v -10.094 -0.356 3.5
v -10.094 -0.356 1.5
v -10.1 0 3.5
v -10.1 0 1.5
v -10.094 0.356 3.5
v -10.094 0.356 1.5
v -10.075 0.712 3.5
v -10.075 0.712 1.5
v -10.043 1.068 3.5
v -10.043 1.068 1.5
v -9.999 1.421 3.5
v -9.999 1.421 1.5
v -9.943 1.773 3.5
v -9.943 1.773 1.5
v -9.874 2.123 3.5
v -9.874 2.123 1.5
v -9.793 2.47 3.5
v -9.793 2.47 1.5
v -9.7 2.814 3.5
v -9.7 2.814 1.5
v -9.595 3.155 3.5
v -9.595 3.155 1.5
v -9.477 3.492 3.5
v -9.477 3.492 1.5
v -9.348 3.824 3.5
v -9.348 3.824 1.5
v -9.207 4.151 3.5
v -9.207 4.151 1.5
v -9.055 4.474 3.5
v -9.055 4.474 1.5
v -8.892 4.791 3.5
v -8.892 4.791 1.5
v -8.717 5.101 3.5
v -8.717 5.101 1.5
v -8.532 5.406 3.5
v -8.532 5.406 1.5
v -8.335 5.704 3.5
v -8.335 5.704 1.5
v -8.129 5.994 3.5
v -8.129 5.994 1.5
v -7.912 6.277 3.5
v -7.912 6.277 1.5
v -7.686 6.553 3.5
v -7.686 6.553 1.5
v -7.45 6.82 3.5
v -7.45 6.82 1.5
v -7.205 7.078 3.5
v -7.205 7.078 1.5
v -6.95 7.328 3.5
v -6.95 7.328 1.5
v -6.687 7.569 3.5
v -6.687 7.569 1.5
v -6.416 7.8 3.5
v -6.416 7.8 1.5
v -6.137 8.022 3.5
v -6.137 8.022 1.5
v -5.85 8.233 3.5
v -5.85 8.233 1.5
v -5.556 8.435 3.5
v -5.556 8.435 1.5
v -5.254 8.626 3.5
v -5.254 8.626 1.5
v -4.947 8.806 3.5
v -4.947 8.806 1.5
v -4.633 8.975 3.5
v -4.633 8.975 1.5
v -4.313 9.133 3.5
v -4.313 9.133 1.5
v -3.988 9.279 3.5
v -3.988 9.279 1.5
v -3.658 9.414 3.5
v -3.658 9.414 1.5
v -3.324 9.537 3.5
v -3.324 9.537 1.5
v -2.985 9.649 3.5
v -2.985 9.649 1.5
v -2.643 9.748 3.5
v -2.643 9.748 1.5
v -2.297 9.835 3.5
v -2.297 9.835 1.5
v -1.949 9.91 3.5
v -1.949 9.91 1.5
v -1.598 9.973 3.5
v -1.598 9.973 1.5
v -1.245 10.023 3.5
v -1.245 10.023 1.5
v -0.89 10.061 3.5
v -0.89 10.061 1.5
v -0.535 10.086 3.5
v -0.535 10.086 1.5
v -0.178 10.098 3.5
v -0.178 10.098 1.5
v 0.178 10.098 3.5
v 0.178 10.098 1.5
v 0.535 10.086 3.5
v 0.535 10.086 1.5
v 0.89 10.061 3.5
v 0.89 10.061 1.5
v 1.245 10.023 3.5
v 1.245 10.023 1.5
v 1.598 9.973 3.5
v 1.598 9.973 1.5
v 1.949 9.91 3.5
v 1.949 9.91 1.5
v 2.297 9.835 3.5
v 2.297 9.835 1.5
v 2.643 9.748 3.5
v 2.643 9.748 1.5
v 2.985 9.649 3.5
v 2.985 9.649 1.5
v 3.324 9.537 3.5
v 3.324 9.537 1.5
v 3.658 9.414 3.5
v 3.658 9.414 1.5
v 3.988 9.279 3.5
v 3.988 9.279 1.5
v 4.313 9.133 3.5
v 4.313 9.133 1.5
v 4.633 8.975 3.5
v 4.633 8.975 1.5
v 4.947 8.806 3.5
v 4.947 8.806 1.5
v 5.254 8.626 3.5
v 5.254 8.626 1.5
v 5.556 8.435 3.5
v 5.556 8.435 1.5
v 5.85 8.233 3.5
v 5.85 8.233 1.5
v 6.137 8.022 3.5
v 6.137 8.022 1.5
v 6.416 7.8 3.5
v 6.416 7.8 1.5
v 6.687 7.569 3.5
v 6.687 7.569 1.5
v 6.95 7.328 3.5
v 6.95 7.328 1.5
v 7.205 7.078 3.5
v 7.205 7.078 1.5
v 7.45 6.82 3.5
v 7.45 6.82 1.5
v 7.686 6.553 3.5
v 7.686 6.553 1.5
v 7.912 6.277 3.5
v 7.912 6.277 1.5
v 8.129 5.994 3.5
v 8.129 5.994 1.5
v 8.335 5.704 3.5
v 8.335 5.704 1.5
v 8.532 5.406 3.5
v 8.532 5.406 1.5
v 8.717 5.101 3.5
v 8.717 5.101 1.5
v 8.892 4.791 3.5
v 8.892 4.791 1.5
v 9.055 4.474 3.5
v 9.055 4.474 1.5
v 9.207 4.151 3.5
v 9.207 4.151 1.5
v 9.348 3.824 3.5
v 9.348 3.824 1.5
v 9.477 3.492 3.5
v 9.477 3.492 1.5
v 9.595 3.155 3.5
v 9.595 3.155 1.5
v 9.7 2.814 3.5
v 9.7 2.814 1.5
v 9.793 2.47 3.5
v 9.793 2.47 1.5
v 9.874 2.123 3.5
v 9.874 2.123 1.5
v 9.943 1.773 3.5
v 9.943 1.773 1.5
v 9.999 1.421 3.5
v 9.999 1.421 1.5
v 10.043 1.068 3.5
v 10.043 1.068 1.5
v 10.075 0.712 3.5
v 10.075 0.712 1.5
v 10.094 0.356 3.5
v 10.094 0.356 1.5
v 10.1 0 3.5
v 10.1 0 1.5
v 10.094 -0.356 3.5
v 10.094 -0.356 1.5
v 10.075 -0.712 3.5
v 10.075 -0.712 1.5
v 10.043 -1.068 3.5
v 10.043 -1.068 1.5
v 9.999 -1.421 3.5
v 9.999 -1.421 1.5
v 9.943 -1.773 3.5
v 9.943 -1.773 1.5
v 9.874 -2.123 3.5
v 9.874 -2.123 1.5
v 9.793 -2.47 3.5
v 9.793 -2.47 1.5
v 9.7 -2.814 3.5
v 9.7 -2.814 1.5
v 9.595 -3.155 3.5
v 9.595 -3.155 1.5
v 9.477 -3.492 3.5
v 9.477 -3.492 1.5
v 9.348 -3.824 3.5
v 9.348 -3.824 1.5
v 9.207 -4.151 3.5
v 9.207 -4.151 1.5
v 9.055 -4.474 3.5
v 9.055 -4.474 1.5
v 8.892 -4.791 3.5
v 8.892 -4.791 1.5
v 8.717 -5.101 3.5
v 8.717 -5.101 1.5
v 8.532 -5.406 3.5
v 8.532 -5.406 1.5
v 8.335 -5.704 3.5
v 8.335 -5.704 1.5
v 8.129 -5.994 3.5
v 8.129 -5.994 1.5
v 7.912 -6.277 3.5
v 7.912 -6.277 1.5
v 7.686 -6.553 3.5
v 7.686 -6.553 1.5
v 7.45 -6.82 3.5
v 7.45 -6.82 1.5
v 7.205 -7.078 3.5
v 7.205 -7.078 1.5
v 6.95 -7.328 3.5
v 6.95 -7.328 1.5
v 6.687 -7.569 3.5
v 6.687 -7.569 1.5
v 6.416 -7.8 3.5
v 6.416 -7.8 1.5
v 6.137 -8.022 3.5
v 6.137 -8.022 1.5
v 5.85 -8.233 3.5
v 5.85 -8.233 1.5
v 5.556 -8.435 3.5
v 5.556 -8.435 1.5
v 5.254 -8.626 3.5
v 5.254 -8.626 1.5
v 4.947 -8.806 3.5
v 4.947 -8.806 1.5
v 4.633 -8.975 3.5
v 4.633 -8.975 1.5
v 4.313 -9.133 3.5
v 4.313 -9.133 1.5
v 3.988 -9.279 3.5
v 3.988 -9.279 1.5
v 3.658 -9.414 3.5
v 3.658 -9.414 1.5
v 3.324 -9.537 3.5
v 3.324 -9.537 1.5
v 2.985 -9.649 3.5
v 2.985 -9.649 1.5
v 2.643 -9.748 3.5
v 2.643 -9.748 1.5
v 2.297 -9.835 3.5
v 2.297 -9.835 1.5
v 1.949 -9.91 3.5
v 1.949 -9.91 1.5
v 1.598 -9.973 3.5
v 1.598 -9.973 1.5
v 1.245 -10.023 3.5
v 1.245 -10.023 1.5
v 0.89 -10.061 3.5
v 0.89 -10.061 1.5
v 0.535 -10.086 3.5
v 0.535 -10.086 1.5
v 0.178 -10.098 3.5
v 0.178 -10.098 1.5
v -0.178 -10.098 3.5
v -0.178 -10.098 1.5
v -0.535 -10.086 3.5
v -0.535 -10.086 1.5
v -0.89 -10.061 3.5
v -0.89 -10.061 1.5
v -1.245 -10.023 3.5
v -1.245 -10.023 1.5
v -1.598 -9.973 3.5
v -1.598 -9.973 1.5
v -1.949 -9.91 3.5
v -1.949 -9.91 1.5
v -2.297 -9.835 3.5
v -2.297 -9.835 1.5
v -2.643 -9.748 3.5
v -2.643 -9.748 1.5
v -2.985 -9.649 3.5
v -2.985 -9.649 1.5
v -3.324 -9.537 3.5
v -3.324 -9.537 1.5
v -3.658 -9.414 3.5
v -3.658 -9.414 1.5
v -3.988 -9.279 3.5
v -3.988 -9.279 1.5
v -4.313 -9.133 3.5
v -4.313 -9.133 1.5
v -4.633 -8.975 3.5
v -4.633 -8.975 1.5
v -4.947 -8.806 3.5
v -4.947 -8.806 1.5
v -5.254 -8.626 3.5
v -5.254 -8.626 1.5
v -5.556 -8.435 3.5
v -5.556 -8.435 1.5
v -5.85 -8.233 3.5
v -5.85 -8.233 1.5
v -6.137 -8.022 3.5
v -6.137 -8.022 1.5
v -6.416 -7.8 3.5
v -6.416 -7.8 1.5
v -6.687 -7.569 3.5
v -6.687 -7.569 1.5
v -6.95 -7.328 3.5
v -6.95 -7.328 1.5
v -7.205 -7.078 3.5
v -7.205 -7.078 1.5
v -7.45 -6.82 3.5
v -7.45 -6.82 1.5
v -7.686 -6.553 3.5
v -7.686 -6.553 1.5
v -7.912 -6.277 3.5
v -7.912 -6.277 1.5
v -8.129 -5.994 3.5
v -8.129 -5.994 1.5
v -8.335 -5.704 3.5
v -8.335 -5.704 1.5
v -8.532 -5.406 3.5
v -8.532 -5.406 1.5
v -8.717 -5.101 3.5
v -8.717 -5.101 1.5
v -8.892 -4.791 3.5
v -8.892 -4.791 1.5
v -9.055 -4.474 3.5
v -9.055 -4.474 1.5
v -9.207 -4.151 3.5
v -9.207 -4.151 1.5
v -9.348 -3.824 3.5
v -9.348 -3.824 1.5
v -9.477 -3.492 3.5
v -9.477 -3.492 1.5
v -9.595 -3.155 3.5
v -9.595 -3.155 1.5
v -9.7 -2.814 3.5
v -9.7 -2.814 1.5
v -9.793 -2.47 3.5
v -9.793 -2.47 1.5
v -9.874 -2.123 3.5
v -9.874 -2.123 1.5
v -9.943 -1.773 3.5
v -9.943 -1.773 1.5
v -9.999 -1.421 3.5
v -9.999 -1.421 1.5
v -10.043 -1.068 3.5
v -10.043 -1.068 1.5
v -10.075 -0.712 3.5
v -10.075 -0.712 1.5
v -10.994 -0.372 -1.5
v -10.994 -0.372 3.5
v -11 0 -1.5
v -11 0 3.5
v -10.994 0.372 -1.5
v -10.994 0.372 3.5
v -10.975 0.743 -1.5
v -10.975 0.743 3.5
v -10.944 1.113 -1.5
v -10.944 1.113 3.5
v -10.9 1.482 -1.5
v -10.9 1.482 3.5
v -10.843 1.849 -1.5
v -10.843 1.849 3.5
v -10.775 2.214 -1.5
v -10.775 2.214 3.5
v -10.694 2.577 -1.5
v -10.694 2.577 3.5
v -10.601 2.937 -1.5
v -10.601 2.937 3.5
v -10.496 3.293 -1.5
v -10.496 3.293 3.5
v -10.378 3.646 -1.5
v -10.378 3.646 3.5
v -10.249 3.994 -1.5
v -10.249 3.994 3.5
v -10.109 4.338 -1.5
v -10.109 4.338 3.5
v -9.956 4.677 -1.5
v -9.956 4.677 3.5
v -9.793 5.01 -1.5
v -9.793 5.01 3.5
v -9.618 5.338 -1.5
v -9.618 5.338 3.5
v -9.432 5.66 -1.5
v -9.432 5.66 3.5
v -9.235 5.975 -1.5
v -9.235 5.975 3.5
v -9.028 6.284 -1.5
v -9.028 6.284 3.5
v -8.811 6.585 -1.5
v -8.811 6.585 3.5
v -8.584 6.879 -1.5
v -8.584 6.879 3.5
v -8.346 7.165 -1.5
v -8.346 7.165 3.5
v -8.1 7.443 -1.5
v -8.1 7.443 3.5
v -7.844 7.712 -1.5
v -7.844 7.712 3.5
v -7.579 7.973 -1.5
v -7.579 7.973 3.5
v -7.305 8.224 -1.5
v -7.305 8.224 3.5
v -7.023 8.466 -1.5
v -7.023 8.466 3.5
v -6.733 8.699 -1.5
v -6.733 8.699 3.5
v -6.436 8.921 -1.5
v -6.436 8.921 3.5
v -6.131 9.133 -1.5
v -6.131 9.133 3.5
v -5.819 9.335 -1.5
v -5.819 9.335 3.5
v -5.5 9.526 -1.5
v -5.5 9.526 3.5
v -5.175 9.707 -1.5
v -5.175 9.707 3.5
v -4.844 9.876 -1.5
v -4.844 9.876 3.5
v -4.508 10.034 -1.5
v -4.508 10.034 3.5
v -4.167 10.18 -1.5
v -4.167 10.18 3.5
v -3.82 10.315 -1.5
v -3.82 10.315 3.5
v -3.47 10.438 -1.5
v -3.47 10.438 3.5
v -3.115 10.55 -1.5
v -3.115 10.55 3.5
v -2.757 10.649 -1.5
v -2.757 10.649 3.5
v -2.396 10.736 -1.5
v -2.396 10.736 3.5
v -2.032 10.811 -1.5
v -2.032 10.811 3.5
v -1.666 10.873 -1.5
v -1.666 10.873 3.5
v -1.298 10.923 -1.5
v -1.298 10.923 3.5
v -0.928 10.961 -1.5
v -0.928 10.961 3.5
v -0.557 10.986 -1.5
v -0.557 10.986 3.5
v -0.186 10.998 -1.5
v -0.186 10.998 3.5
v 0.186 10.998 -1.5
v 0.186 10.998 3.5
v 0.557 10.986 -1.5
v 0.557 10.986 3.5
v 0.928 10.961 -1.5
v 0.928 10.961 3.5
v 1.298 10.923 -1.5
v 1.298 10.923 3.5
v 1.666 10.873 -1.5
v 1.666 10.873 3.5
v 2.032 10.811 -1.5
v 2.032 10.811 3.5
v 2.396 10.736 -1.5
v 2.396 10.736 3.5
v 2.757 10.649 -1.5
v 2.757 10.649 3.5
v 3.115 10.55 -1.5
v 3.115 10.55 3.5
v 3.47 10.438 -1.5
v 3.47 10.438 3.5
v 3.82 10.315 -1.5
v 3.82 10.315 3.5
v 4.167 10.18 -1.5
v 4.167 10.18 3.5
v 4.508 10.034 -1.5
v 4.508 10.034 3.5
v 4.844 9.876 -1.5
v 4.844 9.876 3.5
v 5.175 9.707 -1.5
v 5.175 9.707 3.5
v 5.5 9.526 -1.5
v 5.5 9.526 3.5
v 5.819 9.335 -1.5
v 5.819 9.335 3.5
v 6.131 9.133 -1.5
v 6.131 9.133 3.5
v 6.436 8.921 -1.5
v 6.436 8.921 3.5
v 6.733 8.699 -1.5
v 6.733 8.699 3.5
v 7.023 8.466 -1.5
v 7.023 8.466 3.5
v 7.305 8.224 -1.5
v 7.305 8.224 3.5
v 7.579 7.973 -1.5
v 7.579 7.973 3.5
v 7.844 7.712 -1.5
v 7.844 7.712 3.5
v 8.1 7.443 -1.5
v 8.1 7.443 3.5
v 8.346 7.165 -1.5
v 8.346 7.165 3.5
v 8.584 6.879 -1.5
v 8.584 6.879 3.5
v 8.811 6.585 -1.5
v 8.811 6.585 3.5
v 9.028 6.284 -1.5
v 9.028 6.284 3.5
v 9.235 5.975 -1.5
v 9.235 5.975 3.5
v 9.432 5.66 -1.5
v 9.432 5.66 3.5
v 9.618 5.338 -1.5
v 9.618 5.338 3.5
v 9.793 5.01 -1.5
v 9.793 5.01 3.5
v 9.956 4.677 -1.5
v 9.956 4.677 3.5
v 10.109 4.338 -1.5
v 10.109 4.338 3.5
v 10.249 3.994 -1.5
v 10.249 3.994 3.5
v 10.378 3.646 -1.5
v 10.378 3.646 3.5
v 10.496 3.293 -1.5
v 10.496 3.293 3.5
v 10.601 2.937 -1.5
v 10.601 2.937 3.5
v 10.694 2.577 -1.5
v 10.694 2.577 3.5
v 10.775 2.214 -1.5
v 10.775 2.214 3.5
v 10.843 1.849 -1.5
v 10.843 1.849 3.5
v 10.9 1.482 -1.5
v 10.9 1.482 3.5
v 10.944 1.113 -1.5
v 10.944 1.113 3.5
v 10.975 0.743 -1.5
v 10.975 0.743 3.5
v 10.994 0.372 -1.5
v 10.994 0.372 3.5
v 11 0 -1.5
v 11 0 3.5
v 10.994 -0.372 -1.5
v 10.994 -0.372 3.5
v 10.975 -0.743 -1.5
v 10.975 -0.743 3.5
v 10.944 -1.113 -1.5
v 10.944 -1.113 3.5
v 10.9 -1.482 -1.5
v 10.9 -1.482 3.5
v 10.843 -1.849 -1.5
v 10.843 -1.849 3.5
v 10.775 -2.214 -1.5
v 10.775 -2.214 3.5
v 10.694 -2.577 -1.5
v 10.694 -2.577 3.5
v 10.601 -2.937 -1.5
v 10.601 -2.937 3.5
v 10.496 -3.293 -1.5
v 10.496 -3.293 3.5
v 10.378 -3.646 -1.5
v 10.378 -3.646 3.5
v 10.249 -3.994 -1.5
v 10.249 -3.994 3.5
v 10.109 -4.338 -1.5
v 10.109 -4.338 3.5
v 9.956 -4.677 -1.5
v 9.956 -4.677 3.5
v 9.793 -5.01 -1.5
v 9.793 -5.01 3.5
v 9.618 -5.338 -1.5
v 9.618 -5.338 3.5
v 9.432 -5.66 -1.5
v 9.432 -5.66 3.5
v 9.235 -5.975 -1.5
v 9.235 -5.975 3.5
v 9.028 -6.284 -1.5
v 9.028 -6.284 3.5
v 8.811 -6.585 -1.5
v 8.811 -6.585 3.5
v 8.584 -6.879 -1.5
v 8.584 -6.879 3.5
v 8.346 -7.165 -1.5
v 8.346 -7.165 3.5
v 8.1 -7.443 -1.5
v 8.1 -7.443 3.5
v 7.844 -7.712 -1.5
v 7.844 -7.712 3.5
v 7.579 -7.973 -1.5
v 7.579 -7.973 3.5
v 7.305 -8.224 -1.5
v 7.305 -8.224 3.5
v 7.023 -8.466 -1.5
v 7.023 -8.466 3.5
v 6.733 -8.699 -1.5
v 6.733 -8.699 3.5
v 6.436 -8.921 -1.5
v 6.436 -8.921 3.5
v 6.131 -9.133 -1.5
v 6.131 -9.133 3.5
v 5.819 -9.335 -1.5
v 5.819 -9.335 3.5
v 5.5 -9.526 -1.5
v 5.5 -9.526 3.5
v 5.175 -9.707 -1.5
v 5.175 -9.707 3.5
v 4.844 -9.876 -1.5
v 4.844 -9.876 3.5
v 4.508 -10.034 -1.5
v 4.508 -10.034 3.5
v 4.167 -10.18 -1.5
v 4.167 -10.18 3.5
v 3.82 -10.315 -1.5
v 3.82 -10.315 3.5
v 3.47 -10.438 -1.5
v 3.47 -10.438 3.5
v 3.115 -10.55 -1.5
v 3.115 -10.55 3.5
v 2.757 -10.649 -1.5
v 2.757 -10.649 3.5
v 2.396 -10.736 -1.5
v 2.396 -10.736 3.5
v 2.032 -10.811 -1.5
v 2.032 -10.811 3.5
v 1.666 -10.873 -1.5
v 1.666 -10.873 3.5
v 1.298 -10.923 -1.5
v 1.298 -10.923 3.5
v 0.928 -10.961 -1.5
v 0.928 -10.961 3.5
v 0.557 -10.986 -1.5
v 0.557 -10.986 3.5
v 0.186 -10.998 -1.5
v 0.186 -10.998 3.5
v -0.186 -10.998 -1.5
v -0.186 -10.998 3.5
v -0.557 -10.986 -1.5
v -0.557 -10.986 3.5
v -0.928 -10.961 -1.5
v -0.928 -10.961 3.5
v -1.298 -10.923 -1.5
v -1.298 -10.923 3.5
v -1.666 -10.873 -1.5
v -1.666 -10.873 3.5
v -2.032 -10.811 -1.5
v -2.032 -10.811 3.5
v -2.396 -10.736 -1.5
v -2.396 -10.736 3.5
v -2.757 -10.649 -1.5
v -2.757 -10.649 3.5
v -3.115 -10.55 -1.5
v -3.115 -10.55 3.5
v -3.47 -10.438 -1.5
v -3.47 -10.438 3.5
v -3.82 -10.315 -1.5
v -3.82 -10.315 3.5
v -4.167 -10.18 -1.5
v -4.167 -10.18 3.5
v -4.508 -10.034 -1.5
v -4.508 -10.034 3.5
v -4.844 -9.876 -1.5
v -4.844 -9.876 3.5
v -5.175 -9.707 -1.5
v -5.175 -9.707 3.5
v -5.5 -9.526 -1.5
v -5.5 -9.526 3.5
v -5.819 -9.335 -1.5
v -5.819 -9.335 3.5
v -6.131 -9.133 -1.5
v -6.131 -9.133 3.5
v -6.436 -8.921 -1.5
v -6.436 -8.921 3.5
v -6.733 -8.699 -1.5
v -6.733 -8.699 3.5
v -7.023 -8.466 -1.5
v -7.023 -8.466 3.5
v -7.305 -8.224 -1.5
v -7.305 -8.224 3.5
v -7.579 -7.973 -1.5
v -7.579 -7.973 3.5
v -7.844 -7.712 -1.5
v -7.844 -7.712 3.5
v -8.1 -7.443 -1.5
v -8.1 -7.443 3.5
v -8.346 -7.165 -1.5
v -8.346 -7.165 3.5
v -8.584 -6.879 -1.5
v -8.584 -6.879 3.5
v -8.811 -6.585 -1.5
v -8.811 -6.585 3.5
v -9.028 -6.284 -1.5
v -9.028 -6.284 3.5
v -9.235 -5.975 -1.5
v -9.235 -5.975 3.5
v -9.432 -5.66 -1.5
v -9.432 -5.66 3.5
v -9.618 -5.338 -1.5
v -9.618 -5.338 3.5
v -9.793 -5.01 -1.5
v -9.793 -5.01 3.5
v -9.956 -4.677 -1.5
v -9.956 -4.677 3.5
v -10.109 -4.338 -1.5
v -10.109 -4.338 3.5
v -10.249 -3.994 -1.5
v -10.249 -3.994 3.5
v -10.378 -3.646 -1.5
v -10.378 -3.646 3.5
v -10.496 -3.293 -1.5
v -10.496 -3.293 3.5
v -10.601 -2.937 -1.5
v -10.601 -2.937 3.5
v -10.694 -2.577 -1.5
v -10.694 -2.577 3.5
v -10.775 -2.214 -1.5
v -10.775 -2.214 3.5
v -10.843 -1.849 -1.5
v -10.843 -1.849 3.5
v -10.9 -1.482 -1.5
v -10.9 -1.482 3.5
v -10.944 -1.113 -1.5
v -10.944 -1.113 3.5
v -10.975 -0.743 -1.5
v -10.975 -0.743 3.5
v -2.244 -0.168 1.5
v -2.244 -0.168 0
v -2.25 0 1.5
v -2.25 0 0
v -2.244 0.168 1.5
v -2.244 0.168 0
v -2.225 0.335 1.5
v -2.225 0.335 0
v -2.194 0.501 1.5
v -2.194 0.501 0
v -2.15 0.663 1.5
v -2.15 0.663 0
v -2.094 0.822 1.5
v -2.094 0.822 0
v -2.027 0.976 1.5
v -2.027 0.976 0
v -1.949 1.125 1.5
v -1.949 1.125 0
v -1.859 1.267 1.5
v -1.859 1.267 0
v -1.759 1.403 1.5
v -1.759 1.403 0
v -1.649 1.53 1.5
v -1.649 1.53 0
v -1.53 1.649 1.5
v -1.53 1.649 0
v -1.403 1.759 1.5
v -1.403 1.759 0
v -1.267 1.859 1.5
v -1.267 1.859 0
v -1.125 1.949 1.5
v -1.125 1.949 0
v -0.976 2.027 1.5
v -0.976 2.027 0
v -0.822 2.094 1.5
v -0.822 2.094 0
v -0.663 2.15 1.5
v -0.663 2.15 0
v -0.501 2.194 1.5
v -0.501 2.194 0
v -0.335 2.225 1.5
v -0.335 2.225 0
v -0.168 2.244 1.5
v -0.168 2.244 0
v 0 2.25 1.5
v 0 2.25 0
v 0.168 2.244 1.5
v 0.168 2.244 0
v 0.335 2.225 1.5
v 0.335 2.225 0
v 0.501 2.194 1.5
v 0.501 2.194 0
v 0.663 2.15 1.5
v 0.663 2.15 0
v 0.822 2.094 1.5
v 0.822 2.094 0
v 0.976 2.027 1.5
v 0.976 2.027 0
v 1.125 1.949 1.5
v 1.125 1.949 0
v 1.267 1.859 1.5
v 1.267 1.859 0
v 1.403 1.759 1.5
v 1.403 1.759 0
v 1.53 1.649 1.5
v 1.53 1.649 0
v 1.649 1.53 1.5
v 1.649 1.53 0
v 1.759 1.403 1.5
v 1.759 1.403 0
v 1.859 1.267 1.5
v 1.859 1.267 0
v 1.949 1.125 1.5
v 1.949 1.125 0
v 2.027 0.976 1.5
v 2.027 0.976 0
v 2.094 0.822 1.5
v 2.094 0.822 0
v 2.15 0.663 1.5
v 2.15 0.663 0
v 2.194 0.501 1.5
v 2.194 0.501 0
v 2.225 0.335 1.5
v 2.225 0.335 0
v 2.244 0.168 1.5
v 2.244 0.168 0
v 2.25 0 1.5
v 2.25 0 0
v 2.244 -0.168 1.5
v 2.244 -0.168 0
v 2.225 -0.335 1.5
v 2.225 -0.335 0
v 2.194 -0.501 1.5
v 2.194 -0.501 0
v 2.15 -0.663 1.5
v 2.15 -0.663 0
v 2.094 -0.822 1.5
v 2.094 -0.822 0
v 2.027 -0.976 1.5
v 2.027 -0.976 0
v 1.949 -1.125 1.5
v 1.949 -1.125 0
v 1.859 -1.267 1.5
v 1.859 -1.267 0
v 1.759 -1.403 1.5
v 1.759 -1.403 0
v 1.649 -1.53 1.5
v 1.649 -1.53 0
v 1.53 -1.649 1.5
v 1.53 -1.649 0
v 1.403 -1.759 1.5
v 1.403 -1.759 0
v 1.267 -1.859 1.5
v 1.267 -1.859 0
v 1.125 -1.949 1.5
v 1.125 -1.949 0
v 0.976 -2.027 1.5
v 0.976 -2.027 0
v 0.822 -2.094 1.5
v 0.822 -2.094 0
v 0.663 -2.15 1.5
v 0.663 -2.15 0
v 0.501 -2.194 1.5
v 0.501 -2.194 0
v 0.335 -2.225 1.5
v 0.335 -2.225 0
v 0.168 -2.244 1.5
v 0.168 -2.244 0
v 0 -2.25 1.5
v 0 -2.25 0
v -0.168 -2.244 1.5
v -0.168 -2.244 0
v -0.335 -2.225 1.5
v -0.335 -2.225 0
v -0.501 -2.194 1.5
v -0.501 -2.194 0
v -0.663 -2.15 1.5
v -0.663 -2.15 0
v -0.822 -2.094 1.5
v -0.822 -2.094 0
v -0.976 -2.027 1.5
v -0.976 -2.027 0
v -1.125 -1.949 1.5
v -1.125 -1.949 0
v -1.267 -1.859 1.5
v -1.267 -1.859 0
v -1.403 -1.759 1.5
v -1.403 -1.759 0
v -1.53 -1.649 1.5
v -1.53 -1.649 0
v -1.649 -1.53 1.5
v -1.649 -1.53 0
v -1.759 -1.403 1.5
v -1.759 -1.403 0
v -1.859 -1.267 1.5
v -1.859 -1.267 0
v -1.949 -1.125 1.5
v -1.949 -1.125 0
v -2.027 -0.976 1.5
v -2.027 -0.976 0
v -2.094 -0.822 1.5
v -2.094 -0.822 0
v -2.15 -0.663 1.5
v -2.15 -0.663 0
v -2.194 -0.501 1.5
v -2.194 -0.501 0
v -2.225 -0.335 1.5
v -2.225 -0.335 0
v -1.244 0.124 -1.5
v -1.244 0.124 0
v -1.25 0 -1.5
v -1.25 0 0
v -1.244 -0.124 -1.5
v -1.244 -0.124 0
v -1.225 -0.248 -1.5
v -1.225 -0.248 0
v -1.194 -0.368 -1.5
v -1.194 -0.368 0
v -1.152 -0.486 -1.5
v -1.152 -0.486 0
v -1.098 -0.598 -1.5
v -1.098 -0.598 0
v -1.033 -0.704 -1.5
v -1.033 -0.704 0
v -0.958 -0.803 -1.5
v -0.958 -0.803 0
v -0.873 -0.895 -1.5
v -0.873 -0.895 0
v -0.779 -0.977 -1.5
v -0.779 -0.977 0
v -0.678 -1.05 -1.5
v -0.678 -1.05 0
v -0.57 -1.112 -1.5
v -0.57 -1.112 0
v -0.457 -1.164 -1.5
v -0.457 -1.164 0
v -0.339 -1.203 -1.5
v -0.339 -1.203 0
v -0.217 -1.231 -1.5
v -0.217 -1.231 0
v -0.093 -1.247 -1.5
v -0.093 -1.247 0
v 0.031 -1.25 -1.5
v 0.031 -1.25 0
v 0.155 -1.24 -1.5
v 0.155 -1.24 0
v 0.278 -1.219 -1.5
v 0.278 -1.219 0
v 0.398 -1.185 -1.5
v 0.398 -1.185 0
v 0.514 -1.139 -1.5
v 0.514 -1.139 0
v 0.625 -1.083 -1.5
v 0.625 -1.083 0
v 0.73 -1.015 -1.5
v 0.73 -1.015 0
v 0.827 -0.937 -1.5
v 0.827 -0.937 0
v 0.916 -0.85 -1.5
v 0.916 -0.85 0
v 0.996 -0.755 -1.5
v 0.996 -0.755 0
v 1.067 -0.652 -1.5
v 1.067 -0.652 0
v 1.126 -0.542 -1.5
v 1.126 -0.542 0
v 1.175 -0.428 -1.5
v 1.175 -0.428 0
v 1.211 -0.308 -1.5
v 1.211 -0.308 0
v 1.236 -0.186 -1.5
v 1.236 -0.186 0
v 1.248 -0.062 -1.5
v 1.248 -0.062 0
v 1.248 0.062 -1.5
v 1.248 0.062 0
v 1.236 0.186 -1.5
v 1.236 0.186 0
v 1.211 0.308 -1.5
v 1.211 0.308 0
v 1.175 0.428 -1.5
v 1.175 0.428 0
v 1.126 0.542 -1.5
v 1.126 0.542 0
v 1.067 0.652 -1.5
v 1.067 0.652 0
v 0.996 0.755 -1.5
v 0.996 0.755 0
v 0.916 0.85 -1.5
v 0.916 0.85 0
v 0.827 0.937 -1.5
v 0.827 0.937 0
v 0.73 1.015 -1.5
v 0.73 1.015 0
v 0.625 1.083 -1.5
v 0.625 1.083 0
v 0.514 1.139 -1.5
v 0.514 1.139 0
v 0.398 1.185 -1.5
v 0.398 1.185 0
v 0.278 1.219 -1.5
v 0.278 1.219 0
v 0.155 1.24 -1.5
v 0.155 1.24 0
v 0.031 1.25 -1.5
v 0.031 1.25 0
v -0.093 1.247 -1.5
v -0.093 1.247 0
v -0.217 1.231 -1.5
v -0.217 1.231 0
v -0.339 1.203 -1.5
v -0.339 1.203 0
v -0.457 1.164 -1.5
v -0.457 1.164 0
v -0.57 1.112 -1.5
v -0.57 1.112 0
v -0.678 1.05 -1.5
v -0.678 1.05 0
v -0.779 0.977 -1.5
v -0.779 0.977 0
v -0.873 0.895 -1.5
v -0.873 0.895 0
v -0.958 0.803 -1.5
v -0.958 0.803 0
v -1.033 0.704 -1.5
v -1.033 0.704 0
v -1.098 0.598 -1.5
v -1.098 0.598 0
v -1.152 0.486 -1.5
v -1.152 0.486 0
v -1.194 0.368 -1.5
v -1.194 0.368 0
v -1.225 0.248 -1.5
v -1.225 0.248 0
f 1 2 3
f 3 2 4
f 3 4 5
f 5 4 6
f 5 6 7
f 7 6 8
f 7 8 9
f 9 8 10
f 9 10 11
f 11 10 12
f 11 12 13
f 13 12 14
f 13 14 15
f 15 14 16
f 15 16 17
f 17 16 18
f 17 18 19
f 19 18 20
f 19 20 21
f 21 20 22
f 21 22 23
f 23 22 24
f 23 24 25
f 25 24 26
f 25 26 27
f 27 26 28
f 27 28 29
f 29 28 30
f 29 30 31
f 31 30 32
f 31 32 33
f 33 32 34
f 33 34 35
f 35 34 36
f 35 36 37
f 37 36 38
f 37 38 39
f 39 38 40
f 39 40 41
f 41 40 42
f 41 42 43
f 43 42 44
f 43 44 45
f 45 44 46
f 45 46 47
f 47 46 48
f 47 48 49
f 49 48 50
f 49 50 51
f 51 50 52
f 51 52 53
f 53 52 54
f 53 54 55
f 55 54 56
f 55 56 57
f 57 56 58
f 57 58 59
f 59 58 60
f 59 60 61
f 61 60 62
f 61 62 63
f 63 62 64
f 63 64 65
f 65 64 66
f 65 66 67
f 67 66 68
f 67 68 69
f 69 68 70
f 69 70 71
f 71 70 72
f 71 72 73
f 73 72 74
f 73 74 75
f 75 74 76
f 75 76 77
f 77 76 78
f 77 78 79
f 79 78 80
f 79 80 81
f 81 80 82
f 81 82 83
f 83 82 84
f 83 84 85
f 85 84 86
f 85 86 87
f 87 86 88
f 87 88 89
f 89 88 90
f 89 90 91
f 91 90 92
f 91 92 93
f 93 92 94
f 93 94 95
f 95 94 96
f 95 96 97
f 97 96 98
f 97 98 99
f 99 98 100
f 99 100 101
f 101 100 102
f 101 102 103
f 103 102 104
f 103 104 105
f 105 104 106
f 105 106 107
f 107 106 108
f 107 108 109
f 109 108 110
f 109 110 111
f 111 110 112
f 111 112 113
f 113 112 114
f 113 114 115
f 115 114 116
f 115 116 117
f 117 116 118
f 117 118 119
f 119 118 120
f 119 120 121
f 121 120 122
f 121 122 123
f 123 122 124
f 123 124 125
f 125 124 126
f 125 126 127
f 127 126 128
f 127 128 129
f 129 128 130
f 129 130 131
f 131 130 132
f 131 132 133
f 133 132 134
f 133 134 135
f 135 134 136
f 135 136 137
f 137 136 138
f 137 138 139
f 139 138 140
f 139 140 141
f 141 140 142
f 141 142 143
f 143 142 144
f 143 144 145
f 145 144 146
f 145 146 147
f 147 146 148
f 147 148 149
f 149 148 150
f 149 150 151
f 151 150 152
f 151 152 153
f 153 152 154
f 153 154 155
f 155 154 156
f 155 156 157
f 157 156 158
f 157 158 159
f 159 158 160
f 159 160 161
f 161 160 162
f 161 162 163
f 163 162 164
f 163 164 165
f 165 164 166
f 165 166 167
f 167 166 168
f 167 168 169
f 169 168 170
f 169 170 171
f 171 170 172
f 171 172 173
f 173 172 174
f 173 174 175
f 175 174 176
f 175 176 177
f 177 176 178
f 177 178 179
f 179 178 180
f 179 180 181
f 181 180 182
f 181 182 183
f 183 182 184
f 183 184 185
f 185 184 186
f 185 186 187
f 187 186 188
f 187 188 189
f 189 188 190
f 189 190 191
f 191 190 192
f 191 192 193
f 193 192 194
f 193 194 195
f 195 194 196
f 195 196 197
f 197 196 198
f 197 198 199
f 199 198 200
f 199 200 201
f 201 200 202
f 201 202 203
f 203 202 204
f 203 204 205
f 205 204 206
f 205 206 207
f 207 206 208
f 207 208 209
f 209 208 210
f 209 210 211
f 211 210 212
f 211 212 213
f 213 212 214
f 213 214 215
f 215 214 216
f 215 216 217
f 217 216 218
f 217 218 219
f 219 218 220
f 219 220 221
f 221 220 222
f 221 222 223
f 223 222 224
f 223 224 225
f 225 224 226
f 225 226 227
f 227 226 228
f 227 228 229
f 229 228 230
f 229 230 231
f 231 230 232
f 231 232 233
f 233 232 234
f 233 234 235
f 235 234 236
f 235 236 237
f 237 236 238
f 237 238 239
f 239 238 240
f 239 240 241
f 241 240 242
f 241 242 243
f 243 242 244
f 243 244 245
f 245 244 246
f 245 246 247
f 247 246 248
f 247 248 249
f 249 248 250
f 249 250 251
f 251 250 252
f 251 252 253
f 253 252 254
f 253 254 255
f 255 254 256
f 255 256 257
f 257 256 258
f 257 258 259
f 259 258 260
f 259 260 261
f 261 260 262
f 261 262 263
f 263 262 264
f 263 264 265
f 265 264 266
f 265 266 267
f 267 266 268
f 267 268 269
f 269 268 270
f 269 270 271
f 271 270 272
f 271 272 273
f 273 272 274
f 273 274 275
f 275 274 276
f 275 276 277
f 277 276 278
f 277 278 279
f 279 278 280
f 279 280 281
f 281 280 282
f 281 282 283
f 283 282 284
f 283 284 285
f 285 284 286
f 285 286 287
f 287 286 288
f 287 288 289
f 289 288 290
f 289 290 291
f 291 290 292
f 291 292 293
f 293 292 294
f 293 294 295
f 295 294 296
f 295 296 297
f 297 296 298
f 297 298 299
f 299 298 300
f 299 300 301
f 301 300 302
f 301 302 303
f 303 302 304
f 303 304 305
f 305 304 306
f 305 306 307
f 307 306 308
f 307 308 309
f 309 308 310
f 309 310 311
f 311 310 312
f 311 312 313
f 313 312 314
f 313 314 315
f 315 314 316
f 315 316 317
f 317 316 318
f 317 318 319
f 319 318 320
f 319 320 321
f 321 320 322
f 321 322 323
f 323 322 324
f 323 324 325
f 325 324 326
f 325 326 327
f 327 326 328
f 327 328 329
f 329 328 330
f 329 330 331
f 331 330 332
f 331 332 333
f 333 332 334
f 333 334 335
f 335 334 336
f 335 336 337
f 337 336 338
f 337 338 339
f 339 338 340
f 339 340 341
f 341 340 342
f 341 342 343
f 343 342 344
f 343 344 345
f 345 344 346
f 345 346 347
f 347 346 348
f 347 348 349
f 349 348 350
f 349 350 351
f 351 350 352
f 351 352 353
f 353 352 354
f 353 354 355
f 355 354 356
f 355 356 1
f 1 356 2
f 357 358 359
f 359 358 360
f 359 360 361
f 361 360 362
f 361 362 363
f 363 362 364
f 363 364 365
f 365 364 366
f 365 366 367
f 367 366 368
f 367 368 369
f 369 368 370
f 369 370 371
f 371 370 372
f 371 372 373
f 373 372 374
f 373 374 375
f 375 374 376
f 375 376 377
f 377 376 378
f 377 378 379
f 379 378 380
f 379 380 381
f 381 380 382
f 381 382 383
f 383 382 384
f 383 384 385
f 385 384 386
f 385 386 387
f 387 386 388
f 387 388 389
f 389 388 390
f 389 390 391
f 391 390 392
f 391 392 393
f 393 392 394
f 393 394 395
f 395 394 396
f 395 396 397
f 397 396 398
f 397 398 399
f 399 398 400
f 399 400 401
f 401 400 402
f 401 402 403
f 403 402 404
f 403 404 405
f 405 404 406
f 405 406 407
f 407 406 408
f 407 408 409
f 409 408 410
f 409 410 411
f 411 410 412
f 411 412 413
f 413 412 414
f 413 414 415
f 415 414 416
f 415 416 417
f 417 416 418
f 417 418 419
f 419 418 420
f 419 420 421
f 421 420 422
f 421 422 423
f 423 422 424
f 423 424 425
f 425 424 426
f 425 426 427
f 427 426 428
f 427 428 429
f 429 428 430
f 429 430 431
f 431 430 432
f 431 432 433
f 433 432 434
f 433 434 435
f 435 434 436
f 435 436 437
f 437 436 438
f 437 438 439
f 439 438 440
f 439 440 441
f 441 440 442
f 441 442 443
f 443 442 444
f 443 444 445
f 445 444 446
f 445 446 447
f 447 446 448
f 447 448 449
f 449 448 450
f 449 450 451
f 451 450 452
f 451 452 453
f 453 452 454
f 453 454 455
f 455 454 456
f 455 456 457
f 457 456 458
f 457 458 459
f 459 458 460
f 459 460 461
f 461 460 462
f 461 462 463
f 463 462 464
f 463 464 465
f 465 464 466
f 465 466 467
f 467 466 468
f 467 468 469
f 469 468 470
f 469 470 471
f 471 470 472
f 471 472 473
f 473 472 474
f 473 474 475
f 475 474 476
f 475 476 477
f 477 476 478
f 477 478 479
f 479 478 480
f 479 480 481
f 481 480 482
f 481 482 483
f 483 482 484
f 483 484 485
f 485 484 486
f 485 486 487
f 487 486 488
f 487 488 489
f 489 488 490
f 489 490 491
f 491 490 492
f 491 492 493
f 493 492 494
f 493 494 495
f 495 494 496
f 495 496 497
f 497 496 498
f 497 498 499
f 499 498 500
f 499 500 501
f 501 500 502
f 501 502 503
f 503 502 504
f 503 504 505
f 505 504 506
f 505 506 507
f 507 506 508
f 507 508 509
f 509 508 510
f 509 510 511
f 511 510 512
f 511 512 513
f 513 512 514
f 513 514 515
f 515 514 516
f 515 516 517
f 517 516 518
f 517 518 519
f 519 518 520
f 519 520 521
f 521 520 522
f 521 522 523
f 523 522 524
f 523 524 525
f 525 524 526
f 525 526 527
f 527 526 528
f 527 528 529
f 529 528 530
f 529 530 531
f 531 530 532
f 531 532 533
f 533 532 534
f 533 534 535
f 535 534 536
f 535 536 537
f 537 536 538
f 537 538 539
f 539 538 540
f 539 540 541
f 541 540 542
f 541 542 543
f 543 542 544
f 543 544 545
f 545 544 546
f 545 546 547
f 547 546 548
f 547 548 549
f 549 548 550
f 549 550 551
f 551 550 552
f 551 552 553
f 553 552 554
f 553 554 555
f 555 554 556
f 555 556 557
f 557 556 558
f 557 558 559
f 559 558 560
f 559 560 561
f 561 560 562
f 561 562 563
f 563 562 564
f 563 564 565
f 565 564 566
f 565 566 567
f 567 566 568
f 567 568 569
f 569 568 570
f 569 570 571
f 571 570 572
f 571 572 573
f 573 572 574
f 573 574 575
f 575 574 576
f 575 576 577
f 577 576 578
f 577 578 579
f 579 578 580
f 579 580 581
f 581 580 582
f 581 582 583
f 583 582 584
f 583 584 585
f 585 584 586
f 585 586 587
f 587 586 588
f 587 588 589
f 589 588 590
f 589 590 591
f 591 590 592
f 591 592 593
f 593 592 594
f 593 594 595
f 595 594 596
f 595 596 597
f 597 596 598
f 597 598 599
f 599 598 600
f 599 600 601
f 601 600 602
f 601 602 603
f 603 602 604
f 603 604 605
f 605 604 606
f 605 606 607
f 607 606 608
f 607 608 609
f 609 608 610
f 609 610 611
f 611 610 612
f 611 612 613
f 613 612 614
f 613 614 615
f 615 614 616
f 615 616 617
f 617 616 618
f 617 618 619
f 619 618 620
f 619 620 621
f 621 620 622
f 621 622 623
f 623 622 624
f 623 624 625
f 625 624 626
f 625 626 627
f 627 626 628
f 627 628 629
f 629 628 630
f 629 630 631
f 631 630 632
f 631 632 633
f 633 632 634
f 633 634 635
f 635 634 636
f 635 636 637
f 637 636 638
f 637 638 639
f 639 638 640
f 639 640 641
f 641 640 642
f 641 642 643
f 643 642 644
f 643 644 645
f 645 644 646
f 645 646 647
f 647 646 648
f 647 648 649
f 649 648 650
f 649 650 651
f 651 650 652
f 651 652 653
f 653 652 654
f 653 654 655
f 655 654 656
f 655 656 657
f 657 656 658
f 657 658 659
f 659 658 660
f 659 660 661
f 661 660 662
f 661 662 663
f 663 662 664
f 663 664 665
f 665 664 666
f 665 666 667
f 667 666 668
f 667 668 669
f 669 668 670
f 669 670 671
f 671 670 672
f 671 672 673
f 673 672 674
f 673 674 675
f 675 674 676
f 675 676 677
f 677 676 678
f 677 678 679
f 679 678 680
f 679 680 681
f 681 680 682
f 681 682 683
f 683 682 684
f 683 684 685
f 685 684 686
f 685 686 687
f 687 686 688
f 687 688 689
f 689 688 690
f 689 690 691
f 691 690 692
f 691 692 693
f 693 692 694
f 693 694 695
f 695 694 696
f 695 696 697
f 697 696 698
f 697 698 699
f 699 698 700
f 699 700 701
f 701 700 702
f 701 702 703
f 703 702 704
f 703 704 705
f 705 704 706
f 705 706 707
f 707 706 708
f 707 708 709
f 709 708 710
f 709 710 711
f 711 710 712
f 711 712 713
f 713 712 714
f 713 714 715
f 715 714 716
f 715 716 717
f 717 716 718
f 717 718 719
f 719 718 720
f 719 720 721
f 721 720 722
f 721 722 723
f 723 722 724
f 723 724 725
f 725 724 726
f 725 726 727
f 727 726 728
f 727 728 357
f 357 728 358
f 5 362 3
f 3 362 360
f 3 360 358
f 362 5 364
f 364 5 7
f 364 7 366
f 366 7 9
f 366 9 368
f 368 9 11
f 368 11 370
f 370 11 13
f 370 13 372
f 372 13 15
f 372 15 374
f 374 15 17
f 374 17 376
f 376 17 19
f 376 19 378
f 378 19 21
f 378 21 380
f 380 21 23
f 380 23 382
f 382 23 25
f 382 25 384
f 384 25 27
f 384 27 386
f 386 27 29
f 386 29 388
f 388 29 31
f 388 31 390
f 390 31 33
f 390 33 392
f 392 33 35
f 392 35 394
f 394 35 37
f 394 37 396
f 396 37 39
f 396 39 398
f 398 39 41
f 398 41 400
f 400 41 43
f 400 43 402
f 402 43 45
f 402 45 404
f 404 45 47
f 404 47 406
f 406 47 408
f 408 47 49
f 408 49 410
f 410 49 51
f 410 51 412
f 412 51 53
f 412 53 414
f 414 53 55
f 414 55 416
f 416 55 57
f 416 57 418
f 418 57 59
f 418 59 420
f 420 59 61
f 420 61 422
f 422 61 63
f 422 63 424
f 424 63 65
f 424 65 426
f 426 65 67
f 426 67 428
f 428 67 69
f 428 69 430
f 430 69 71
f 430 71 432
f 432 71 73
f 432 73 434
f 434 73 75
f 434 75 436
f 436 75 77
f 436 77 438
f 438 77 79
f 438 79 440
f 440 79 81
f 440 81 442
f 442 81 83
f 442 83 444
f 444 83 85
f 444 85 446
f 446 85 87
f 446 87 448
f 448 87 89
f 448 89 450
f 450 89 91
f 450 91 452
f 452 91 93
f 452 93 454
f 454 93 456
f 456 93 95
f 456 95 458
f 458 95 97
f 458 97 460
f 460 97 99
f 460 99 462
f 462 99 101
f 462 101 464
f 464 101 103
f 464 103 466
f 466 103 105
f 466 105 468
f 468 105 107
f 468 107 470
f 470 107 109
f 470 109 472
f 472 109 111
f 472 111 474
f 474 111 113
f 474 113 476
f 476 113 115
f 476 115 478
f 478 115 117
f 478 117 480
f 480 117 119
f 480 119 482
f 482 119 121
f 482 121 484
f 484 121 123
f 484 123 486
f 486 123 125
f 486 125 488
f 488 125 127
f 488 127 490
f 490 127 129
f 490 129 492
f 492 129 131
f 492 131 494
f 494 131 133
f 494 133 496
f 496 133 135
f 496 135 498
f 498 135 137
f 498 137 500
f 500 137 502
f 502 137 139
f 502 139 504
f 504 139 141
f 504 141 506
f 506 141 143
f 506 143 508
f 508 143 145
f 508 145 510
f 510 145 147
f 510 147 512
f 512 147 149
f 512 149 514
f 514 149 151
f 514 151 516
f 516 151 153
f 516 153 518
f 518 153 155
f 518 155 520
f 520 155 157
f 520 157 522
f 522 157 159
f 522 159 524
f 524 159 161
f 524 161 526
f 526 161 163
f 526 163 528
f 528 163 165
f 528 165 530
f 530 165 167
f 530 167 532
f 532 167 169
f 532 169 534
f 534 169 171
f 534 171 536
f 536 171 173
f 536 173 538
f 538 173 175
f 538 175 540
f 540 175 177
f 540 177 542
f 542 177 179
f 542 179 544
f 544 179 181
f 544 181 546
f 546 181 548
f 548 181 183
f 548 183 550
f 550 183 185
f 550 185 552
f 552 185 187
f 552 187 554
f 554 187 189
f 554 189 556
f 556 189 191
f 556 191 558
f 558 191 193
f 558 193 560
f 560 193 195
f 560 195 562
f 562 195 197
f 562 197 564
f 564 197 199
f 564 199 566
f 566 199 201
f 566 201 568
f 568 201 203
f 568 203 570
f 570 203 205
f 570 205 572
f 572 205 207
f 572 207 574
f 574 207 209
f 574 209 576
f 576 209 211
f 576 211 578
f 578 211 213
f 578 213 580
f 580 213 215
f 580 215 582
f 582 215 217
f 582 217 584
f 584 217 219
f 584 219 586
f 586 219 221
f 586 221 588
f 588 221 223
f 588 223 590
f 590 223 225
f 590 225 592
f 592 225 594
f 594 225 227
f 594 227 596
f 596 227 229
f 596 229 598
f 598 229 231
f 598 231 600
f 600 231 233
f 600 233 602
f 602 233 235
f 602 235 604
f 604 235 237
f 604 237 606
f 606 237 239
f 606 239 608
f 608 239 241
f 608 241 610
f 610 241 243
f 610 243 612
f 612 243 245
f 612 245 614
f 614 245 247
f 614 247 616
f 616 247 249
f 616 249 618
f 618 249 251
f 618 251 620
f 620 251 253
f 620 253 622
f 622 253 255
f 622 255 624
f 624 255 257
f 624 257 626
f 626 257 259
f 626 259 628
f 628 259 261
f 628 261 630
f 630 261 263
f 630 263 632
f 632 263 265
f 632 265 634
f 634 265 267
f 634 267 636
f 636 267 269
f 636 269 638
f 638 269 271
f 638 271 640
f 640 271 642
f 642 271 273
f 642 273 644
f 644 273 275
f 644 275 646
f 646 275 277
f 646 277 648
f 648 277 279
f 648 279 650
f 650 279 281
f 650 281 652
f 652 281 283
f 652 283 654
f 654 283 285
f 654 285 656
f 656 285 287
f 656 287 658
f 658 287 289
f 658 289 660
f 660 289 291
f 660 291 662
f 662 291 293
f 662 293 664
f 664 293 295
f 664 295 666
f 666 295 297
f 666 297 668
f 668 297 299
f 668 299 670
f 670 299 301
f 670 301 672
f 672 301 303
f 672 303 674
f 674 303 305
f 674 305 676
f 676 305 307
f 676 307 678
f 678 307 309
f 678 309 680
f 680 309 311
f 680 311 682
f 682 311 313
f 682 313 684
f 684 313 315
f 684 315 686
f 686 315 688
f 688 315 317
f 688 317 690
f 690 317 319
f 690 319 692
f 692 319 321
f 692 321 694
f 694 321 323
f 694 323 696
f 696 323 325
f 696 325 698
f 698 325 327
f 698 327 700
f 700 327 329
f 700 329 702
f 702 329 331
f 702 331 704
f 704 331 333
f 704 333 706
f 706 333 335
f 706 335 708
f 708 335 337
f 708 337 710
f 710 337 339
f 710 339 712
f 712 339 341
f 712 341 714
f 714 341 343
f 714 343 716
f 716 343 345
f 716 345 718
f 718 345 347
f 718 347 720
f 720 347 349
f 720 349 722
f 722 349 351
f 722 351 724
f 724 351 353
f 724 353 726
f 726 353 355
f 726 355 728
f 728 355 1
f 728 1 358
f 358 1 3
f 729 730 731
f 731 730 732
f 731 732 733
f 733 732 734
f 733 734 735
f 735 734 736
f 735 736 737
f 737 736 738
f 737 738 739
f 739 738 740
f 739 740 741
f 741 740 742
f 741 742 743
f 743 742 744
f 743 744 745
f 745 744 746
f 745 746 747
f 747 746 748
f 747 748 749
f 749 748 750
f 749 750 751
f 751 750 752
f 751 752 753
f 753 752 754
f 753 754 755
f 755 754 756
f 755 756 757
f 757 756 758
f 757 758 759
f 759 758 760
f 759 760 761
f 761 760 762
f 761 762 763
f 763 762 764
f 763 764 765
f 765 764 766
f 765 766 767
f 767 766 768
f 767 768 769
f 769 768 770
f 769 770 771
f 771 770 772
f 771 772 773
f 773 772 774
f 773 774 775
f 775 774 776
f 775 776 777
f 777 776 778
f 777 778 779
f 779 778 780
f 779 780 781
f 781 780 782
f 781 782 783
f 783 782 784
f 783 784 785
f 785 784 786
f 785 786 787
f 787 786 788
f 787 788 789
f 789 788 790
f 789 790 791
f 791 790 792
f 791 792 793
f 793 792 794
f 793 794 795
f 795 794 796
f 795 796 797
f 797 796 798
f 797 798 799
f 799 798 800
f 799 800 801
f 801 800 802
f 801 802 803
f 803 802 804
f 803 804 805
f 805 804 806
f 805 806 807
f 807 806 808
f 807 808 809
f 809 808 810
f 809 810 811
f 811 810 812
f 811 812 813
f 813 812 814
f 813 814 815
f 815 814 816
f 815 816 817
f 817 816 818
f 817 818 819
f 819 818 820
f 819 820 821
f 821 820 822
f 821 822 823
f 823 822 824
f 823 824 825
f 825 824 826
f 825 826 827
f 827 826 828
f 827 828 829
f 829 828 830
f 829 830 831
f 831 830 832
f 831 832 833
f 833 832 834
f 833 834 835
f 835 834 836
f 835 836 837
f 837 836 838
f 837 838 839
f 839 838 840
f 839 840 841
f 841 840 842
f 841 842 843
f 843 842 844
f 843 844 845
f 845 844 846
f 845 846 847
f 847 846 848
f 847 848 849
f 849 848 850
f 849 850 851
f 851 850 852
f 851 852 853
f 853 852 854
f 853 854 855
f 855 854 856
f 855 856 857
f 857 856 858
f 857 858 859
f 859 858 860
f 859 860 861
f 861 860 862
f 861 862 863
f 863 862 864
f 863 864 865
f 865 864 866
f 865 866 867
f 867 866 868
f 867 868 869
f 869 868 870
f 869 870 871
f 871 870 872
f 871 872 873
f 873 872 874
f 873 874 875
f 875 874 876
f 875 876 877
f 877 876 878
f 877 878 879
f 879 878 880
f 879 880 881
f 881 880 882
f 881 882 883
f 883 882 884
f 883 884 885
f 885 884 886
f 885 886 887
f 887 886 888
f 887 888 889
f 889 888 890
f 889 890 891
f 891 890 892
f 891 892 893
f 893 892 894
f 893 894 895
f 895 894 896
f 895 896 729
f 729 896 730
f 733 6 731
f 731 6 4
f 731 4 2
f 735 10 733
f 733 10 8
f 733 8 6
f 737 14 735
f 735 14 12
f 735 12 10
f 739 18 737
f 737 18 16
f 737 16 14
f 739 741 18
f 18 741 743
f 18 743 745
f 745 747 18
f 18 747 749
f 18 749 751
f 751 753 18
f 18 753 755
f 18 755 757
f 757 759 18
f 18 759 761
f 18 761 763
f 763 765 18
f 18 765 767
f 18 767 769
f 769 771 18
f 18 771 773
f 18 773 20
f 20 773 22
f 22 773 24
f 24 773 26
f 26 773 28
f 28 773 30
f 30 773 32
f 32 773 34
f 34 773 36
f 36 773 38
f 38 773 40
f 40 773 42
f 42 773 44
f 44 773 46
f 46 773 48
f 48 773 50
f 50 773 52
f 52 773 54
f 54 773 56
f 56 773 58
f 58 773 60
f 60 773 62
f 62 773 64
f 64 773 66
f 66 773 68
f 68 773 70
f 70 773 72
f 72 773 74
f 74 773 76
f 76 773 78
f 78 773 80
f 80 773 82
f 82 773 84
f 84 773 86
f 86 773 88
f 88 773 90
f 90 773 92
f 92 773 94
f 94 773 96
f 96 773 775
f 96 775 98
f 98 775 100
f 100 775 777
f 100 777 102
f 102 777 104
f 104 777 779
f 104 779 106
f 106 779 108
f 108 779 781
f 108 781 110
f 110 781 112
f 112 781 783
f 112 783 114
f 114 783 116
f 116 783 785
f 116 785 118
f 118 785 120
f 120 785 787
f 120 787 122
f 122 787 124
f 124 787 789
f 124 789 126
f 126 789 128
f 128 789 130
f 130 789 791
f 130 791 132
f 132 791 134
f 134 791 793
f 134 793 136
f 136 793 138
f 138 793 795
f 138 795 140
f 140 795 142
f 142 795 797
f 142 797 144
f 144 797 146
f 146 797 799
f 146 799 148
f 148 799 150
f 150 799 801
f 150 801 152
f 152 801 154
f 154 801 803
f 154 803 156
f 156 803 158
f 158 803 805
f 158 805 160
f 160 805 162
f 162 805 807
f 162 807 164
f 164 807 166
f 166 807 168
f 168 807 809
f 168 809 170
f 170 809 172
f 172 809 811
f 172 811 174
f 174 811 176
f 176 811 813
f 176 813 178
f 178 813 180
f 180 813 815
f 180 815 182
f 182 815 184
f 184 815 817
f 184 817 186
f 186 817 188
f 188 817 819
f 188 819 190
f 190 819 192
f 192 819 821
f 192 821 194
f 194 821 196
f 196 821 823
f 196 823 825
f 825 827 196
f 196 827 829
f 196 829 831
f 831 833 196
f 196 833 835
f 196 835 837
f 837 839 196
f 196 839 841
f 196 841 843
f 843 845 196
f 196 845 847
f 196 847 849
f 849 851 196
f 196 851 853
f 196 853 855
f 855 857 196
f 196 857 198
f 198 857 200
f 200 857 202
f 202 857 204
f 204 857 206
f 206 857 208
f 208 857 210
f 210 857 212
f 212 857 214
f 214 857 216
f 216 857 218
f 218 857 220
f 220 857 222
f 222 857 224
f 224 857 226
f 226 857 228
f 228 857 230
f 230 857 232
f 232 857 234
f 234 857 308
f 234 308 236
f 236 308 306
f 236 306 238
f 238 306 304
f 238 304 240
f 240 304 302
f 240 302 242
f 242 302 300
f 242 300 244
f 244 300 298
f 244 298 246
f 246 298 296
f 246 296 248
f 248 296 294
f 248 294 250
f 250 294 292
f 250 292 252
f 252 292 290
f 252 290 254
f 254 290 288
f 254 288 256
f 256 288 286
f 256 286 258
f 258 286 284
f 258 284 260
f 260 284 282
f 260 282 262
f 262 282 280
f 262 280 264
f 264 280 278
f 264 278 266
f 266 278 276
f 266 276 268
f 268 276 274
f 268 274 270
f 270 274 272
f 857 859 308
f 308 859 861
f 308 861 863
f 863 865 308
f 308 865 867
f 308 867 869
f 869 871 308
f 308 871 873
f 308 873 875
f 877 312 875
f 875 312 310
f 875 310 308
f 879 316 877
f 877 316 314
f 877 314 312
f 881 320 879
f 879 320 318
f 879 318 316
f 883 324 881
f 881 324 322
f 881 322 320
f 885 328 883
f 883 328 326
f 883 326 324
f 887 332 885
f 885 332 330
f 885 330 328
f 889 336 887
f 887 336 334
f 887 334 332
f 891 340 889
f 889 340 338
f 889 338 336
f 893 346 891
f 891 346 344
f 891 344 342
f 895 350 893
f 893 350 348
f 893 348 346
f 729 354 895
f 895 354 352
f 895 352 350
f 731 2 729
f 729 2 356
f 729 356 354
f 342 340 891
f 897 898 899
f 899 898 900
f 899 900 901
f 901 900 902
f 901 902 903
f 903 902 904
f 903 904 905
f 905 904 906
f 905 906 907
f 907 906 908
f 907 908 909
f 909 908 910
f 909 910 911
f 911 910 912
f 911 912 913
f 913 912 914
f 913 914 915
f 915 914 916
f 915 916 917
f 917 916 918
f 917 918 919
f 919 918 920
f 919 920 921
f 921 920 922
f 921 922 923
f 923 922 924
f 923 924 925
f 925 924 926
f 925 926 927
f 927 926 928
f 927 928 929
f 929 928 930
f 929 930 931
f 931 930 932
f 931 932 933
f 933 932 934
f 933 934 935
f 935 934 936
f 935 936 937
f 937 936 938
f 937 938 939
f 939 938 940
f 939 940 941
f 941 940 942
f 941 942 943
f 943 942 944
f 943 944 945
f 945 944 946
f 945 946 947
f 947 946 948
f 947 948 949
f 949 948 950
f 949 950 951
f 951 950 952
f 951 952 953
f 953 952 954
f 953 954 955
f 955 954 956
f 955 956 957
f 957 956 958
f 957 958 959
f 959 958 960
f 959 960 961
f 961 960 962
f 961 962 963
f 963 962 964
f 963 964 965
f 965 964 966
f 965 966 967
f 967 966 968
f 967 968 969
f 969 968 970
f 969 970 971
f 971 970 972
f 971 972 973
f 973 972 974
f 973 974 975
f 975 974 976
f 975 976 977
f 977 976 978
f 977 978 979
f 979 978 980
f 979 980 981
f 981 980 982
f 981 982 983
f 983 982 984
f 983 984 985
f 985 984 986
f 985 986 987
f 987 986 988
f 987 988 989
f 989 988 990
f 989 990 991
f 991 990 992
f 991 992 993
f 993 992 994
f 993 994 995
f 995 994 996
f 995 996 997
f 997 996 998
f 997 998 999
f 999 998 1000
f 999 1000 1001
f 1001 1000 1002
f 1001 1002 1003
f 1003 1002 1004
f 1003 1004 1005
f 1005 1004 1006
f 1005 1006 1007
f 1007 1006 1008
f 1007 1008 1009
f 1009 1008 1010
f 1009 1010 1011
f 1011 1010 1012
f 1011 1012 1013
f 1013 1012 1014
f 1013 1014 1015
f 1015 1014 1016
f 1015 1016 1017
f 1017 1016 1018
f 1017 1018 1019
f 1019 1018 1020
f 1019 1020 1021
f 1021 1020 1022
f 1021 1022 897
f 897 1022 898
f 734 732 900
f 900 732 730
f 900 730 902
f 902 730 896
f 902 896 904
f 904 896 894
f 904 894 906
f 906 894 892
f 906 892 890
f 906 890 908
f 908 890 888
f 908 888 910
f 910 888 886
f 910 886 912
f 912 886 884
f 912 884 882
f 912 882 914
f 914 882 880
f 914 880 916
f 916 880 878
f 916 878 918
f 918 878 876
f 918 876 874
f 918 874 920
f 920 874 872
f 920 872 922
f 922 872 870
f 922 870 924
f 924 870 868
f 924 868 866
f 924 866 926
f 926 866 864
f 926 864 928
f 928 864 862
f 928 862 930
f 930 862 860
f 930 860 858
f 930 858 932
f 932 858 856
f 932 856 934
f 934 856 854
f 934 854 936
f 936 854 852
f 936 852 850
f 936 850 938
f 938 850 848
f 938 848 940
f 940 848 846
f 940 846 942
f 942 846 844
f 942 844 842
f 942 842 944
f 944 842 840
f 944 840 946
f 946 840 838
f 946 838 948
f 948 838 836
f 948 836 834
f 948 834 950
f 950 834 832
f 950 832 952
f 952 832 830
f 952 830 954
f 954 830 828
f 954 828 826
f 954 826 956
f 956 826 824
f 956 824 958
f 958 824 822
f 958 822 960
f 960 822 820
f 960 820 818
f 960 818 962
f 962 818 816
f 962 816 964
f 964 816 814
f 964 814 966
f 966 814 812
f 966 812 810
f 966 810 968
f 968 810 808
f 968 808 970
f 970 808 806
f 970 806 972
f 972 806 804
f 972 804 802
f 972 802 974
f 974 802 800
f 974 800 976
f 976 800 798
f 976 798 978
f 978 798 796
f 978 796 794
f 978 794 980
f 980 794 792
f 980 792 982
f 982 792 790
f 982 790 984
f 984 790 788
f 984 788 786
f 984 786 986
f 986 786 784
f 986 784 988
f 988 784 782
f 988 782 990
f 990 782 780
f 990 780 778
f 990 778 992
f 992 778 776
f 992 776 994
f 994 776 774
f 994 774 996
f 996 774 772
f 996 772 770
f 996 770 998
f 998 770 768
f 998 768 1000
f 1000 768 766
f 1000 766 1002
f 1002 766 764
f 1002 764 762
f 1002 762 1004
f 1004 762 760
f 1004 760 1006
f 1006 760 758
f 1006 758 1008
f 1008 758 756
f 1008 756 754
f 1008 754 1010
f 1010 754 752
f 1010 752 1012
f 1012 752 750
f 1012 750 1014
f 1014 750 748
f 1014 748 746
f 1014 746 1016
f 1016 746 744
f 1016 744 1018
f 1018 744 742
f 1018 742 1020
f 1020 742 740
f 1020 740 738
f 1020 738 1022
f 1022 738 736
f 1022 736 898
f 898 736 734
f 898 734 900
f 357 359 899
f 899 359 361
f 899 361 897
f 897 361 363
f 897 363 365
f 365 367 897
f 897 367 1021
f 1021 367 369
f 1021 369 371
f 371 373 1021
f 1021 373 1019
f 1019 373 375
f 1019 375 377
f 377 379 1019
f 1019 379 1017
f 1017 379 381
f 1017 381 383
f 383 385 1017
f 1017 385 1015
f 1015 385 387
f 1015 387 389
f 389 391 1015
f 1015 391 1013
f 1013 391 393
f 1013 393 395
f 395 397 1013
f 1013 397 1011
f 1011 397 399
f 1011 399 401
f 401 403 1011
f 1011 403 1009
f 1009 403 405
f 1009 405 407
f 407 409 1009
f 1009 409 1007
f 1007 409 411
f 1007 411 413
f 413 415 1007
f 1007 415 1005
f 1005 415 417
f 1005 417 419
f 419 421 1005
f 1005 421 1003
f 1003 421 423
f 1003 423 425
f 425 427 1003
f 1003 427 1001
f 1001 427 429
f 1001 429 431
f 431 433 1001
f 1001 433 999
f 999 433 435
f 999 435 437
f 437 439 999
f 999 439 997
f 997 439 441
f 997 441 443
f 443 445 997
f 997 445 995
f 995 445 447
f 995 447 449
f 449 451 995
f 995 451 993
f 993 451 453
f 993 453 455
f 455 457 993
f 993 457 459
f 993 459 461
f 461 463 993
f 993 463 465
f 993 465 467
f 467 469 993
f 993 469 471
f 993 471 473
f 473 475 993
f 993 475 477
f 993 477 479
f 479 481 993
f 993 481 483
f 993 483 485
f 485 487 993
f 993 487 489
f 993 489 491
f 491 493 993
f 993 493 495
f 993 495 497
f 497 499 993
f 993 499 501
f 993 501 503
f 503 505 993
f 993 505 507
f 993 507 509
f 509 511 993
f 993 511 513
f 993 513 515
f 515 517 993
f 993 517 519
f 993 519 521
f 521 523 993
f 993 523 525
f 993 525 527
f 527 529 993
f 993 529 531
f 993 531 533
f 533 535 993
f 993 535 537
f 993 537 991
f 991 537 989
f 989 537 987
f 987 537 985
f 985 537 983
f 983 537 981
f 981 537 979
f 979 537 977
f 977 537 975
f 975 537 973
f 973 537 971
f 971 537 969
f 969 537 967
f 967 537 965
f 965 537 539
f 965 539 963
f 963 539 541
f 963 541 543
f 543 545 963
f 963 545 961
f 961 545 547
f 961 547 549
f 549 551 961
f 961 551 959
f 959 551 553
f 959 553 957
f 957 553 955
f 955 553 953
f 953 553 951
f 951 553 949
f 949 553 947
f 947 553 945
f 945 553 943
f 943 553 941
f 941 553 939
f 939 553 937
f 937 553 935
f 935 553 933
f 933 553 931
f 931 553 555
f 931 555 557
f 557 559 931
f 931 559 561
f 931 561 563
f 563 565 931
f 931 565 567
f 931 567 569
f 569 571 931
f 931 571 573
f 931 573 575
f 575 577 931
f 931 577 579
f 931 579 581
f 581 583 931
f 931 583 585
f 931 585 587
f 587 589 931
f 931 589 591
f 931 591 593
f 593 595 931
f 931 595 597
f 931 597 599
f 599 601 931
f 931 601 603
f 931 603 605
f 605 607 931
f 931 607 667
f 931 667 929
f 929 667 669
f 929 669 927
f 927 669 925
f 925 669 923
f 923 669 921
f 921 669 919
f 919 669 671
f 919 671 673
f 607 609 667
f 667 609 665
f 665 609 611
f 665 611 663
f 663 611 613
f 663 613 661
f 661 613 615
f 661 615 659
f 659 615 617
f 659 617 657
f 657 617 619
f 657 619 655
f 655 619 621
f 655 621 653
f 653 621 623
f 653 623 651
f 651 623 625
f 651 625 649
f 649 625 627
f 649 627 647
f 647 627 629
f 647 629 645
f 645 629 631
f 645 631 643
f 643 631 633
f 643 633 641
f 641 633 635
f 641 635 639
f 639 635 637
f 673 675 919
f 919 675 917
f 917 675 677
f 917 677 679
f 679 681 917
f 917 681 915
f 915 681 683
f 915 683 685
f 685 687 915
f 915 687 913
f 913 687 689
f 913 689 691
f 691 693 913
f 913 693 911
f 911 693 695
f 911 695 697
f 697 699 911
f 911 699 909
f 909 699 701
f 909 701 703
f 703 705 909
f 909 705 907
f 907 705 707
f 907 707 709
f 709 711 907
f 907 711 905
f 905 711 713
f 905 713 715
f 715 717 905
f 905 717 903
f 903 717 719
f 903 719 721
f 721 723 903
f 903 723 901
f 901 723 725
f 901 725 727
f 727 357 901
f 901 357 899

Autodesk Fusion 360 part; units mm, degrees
sketch "Skizze1" plane through (0, 0, 0) normal (0, 0, 1) x (1, 0, 0)
  line L0 (-39.8802, 0) -> (43.6662, 0) construction
  line L1 (0, 41.7732) -> (0, -47.5785) construction
  circle A0 centre (0, 0) radius 11
  circle A1 centre (0, 0) radius 10.1
  circle A2 centre (0, 0) radius 1.25
  circle A3 centre (0, 0) radius 2.25
  dimension "d1" = 22
  dimension "d2" = 20.2
  dimension "d3" = 2.5
  dimension "d4" = 4.5
extrude "Extrusion1" add sketch "Skizze1" against normal blind 1.5 contours A1 | A3
extrude "Extrusion2" add sketch "Skizze1" along normal blind 1.5 contours A1
extrude "Extrusion3" add sketch "Skizze1" along normal blind 3.5 and the other way blind 1.5 contours A0
